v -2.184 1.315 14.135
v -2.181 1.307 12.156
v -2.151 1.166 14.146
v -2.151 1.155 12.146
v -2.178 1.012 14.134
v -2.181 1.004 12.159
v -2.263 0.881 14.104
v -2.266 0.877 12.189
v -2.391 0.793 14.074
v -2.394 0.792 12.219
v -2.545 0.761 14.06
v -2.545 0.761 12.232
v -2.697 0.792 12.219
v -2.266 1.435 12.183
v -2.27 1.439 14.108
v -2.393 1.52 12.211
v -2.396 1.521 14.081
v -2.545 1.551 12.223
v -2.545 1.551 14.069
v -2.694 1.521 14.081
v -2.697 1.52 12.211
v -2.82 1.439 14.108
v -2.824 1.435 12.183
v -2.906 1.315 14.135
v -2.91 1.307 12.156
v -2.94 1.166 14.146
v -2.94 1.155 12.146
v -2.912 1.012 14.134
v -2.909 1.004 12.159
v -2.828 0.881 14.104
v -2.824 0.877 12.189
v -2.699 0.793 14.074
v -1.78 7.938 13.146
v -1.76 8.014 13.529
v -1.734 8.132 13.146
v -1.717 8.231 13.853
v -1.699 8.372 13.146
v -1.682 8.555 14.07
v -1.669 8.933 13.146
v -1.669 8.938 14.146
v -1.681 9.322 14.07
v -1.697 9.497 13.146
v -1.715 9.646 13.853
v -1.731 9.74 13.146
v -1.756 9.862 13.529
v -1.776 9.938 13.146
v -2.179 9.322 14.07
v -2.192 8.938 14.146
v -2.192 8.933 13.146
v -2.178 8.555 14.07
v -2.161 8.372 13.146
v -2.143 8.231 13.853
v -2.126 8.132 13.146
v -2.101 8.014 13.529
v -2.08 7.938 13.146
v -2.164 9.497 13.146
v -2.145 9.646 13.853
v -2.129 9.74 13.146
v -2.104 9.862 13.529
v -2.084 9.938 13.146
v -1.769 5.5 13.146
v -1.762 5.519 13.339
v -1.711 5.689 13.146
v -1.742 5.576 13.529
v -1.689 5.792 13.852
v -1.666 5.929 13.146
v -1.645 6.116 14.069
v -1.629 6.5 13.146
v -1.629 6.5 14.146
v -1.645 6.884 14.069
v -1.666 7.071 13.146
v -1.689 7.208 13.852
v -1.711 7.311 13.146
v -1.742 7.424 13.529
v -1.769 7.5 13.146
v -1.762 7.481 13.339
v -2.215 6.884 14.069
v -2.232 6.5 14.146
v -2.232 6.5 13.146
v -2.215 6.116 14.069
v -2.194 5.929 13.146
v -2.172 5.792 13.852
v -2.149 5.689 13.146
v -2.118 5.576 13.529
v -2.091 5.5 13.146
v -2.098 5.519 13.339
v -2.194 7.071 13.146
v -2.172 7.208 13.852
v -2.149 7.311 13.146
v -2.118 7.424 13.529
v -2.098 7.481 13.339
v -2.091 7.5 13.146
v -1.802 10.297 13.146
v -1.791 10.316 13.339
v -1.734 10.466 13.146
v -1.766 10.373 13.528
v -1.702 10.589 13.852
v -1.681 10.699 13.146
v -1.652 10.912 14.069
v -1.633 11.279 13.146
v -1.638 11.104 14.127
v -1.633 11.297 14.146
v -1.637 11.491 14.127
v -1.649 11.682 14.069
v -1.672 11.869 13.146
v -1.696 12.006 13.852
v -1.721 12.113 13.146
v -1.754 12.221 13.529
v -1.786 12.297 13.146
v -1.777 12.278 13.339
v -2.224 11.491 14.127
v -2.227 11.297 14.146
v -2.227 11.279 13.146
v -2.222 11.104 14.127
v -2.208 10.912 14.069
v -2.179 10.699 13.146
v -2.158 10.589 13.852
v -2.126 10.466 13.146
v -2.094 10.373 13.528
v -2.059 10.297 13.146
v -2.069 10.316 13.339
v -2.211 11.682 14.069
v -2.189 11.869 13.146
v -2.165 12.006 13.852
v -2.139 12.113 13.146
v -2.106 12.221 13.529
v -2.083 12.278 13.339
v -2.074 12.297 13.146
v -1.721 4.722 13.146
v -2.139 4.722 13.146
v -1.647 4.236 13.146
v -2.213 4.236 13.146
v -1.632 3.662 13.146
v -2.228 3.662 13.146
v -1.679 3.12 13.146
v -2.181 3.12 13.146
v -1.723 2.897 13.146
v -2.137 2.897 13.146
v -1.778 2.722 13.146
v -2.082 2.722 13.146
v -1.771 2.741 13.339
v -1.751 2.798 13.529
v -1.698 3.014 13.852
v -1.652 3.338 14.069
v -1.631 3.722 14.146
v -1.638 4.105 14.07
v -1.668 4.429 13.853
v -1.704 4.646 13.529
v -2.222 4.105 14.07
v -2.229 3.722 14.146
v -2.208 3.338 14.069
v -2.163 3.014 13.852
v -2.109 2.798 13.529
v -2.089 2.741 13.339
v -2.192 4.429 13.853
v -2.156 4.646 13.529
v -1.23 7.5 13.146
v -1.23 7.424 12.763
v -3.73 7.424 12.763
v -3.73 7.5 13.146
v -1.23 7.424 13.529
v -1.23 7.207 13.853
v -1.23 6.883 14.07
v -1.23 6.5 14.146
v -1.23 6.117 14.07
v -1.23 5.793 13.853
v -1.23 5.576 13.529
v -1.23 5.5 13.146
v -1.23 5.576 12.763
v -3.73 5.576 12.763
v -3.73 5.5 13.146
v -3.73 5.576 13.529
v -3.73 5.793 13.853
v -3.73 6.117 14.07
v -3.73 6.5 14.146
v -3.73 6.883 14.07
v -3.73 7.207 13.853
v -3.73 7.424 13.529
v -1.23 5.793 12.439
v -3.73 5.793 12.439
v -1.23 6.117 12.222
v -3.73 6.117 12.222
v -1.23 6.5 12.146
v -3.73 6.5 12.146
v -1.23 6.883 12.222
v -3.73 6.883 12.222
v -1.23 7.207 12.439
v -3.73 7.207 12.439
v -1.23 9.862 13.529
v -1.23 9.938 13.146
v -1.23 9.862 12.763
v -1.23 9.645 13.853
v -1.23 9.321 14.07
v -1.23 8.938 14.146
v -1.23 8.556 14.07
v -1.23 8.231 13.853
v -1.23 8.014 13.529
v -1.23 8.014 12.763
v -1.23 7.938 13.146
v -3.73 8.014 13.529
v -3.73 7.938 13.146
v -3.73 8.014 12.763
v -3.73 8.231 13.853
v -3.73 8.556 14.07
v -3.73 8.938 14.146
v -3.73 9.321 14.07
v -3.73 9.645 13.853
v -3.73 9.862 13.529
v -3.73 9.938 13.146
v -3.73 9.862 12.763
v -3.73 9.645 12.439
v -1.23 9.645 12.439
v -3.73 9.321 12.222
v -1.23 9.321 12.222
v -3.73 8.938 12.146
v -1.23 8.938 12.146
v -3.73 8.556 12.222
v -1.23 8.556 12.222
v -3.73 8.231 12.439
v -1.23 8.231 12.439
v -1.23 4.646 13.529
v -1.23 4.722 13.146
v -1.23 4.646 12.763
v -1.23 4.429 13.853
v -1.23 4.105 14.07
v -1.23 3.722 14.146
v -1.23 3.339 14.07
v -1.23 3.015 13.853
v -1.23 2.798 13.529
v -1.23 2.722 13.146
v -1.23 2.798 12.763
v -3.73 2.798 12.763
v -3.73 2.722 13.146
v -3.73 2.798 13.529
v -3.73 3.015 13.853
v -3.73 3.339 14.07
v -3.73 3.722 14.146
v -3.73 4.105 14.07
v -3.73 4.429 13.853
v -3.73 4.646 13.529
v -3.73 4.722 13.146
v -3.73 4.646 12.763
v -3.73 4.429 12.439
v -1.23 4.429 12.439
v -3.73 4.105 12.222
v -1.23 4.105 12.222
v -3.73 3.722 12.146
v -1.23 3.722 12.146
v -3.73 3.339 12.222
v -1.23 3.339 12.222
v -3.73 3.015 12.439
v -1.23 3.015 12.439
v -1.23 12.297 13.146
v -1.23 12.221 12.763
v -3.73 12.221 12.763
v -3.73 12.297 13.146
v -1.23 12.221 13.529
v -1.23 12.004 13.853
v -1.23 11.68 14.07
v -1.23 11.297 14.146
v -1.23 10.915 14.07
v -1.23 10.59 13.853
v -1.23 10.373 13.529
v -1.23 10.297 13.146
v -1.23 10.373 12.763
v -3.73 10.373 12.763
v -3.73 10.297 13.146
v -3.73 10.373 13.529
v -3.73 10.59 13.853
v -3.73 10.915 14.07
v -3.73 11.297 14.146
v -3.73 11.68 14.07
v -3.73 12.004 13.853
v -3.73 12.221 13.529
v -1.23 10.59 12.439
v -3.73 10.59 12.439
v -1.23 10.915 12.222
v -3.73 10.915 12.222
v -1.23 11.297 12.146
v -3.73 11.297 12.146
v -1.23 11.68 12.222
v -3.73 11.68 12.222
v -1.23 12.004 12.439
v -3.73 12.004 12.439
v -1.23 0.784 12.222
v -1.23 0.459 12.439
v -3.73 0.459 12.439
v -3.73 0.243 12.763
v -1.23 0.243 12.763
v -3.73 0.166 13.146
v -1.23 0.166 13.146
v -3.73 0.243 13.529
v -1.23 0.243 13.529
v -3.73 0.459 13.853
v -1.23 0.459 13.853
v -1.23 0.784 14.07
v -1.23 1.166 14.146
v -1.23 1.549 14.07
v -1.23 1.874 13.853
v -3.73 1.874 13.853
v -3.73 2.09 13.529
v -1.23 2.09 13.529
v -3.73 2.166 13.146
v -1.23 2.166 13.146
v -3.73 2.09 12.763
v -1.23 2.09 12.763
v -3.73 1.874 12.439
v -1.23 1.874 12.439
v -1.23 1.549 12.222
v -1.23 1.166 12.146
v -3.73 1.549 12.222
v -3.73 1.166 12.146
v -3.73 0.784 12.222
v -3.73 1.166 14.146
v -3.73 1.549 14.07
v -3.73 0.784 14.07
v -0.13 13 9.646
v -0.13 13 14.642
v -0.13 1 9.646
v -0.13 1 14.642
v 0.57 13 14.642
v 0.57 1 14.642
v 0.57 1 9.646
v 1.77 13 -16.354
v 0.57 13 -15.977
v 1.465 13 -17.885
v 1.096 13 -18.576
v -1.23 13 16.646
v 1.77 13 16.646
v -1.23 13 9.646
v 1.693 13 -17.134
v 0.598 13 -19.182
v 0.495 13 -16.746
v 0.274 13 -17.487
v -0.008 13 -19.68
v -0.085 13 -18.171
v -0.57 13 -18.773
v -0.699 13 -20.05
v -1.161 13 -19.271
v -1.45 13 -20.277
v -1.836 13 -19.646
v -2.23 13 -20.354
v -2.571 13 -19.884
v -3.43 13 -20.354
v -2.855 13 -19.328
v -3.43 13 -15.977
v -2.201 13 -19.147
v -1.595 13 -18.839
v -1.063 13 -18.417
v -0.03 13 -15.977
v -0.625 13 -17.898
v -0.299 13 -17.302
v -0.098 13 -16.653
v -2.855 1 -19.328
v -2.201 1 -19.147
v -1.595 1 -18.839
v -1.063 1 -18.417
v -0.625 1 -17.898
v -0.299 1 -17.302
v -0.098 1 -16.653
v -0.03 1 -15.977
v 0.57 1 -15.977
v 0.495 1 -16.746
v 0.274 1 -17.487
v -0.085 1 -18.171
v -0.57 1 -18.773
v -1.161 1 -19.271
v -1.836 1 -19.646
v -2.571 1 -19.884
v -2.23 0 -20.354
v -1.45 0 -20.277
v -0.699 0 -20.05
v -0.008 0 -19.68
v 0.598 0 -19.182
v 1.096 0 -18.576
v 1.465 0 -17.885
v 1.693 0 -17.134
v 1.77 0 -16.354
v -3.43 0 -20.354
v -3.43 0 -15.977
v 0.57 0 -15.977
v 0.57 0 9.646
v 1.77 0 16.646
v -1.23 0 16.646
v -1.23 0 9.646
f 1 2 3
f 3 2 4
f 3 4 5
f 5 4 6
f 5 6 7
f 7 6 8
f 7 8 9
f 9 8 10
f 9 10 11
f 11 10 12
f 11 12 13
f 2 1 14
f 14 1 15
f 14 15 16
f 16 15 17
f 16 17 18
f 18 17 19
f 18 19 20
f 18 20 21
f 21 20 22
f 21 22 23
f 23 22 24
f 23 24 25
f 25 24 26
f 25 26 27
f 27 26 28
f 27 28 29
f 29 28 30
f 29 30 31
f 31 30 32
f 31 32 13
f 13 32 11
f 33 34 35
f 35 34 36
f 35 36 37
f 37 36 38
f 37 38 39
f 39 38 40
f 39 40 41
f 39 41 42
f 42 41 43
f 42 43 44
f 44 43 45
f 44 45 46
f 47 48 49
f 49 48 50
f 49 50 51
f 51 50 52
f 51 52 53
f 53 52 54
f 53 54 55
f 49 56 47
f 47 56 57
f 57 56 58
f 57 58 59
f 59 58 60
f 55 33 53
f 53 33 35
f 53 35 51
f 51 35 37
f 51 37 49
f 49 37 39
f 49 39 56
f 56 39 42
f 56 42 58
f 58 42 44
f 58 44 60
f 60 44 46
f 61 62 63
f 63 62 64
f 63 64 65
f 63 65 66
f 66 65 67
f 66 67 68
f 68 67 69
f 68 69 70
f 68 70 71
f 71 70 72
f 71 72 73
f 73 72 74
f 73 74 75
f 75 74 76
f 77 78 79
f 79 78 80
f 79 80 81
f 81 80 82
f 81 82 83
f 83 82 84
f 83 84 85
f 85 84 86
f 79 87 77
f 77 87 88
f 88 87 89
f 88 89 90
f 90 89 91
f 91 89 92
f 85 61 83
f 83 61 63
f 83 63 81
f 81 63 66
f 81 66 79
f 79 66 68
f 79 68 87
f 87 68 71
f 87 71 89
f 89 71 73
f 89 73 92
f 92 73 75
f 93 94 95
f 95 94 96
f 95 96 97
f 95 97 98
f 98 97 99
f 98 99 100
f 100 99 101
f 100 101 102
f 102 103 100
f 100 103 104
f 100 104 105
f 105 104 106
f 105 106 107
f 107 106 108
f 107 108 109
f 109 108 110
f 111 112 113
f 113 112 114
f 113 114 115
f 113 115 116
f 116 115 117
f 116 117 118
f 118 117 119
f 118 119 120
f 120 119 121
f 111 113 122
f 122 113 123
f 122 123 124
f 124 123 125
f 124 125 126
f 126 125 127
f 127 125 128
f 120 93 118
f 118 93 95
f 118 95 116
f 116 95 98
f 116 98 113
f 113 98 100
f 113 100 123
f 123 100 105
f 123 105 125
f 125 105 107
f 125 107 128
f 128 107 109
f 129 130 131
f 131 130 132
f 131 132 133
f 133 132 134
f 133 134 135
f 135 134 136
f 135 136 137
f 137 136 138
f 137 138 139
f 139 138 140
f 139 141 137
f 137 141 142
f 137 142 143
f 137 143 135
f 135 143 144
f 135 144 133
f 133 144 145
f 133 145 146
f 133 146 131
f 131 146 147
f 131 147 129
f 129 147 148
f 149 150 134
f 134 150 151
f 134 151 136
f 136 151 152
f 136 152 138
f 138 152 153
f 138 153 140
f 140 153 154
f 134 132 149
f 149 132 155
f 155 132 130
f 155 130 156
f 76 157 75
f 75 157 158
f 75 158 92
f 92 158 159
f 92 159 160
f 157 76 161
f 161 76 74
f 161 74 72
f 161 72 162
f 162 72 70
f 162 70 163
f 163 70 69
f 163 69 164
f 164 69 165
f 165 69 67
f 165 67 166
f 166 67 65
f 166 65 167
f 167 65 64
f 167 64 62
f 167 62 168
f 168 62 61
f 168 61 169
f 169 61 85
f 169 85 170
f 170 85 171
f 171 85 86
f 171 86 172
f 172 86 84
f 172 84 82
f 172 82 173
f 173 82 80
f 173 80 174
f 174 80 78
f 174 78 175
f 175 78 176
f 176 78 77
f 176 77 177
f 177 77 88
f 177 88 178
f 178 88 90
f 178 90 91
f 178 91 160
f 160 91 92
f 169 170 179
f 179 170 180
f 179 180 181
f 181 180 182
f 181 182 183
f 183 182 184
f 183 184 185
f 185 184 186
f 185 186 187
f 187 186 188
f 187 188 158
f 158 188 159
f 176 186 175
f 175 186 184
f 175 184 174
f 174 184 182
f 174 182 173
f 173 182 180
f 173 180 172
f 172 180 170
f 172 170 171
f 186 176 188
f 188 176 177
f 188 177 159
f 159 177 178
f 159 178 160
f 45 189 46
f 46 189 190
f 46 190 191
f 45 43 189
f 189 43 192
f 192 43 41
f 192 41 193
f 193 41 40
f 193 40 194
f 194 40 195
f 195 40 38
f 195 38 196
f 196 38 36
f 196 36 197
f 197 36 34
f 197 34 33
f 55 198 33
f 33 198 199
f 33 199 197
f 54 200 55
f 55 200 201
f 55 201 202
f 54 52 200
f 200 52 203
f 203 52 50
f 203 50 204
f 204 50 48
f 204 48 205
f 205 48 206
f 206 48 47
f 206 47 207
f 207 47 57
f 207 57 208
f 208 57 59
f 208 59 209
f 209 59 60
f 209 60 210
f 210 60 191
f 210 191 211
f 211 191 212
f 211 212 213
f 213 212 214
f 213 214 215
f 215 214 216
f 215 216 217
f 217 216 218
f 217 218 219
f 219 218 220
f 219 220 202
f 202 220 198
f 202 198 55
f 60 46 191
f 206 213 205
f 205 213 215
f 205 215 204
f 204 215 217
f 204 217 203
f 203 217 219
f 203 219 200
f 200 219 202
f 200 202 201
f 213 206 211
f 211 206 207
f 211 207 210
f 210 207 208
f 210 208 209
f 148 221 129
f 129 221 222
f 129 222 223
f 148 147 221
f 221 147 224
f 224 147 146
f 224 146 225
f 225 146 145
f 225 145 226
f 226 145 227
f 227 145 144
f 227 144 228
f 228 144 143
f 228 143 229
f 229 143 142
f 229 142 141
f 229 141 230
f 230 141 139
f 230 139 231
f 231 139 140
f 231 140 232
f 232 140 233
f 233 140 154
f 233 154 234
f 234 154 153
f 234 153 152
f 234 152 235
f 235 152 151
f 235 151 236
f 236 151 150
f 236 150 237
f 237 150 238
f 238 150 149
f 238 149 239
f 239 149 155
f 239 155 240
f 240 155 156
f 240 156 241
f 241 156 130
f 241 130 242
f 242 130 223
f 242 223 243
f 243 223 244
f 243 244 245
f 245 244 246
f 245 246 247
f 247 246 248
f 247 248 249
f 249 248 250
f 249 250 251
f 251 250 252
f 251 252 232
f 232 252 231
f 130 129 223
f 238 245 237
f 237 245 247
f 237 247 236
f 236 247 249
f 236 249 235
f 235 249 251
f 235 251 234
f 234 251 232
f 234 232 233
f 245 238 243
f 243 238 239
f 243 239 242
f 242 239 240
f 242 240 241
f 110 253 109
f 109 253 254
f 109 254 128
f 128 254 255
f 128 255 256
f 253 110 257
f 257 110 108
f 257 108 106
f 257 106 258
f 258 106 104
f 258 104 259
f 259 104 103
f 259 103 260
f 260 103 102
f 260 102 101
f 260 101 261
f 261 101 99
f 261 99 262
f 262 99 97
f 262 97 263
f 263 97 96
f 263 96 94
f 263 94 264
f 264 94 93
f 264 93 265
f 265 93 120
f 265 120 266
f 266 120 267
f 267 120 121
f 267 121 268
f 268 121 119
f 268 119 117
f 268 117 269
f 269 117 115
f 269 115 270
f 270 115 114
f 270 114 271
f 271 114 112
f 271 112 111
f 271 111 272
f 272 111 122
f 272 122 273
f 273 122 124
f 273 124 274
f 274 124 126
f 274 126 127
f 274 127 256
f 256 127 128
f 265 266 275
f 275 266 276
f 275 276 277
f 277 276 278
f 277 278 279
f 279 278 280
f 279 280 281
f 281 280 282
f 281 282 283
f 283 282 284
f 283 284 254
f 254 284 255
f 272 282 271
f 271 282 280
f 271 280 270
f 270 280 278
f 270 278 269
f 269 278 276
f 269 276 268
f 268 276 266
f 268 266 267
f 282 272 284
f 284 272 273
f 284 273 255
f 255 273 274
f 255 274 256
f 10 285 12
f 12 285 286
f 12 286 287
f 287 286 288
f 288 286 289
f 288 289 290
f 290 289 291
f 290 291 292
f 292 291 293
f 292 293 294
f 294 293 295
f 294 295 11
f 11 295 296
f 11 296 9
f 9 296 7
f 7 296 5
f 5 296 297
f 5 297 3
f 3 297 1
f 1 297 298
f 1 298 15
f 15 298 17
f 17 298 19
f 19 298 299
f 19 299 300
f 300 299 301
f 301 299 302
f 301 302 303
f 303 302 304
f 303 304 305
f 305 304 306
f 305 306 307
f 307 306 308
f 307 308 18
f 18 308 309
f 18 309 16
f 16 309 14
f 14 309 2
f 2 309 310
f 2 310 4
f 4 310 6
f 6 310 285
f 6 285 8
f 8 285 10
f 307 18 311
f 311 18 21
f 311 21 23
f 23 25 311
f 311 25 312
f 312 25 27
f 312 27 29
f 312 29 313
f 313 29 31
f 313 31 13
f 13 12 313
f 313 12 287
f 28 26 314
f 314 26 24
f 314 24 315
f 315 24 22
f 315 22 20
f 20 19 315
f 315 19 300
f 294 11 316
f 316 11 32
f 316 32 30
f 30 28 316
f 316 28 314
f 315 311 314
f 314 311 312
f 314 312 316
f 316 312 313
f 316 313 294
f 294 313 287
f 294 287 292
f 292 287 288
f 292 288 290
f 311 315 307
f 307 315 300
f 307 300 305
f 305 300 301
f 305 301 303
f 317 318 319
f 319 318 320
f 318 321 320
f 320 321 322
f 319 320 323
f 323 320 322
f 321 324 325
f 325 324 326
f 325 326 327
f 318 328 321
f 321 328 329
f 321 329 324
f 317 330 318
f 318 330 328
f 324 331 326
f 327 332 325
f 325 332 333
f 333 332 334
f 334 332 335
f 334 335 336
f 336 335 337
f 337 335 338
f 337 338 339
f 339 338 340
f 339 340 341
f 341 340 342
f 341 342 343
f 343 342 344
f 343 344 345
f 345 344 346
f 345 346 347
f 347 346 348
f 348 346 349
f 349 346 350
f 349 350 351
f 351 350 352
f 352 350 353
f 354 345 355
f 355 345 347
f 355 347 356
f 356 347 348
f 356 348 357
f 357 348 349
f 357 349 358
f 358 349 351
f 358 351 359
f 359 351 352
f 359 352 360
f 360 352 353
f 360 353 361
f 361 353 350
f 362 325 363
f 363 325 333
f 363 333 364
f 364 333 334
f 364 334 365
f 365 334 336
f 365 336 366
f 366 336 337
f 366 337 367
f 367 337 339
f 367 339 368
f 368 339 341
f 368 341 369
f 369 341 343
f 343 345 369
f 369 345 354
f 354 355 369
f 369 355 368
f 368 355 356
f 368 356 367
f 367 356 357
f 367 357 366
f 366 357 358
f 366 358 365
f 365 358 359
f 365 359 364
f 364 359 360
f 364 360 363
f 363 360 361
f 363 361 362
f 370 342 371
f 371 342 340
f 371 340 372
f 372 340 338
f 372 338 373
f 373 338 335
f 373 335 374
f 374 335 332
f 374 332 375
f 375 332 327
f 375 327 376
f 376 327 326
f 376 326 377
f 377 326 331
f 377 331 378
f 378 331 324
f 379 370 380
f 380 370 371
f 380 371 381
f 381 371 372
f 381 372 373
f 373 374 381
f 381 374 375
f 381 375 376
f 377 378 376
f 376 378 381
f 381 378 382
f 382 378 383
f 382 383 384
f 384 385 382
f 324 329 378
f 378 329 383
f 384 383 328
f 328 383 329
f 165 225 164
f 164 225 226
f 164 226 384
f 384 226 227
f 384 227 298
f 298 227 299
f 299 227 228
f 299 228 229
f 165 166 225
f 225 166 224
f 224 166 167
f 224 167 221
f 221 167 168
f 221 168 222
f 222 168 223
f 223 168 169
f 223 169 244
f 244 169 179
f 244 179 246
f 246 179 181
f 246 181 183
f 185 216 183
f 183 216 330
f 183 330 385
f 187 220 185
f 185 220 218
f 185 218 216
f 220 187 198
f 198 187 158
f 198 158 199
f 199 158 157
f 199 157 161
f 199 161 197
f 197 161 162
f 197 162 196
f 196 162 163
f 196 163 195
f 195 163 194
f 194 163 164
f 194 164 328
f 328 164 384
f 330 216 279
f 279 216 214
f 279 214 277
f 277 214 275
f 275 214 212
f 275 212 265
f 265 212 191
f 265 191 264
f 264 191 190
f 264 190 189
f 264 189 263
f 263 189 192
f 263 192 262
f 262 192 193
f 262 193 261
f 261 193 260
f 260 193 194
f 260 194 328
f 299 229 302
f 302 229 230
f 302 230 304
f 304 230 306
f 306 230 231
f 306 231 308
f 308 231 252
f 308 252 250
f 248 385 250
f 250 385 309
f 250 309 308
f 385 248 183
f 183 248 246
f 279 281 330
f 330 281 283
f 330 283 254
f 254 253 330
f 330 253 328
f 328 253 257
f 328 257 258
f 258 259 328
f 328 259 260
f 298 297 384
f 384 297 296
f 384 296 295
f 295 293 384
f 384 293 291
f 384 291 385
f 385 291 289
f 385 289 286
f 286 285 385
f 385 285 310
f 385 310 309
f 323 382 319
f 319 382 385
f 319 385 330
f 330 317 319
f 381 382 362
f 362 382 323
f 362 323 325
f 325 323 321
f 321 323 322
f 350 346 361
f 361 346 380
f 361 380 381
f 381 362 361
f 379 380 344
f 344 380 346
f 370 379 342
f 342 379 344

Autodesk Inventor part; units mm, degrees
ref_plane "YZ Plane" through (0, 0, 0) normal (1, 0, 0) x (0, 1, 0)
ref_plane "XZ Plane" through (0, 0, 0) normal (0, 1, 0) x (-1, 0, 0)
ref_plane "XY Plane" through (0, 0, 0) normal (0, 0, 1) x (1, 0, 0)
sketch "Skizze1" plane through (0, 0, 0) normal (0, 1, 0) x (-1, 0, 0)
  line L0 (1.2301, 16.646) -> (-1.7699, 16.646)
  line L1 (-1.7699, 16.646) -> (-1.7699, 9.646)
  line L2 (-1.7699, 9.646) -> (1.2301, 9.646)
  line L3 (1.2301, 9.646) -> (1.2301, 16.646)
  line L4 (-1.7699, 9.646) -> (-0.5699, 9.646)
  line L5 (-0.5699, 9.646) -> (-0.5699, -20.354)
  line L6 (-0.5699, -20.354) -> (-1.7699, -20.354)
  line L7 (-1.7699, -20.354) -> (-1.7699, 9.646)
  line L8 (-0.5699, -20.354) -> (3.4301, -20.354)
  line L9 (3.4301, -20.354) -> (3.4301, -15.9771)
  line L10 (3.4301, -15.9771) -> (-0.5699, -15.9771)
  line L11 (-0.5699, -15.9771) -> (-0.5699, -20.354)
  point P0 (0, 0)
  dimension "d0" = 3
  dimension "d1" = 7
  dimension "d2" = 1.2
  dimension "d3" = 30
  dimension "d4" = 4
extrude "Extrusion1" add sketch "Skizze1" along normal blind 13
fillet "Rundung1" radius 4 1 edges at (1.7699, 6.5, -20.354)
sketch "Skizze2" plane through (0, 13, 0) normal (0, 1, 0) x (1, 0, 0)
  line L0 (0.5699, -9.646) -> (-1.2301, -9.646) projected
  line L1 (0.5699, -9.646) -> (-0.1301, -9.646)
  line L2 (-0.1301, -9.646) -> (-0.1301, -14.642)
  line L3 (-0.1301, -14.642) -> (0.5699, -14.642)
  line L4 (0.5699, -14.642) -> (0.5699, -9.646)
  point P0 (0, 0)
  point P1 (-0.3301, -9.646)
  point P2 (-0.1301, -9.646)
  dimension "d8" = 5
  dimension "d9" = 0.7
sketch "Skizze3" plane through (0, 13, 0) normal (0, 1, 0) x (1, 0, 0)
  line L0 (-3.4301, 20.354) -> (-3.4301, 15.9771) projected
  line L1 (-3.4301, 15.9771) -> (0.5699, 15.9771) projected
  arc A0 (0.5699, 15.9771) -> (-2.5715, 19.8839) centre (-3.4301, 15.9771) ccw
  line L2 (0.5699, 15.9771) -> (0.5699, -9.646) projected
  line L3 (0.5699, 15.9771) -> (-0.0301, 15.9771)
  arc A1 (-0.0301, 15.9771) -> (-2.8554, 19.3282) centre (-3.4301, 15.9771) ccw
  line L4 (-2.8554, 19.3282) -> (-2.5715, 19.8839)
  point P0 (0, 0)
  dimension "d10" = 0.6
extrude "Extrusion2" cut sketch "Skizze3" against normal blind 12
extrude "Extrusion3" cut sketch "Skizze2" against normal blind 12
sketch "Skizze4" plane through (-1.2301, 0, 9.646) normal (-1, 0, 0) x (0, 0, 1)
  line L0 (0, 0) -> (7, 0) projected
  line L1 (7, 0) -> (3.5, 0)
  line L2 (4.996, 13) -> (0, 13) projected
  line L3 (3.5, 13) -> (3.5, 0)
  line L4 (3.5, 6.5) -> (7, 6.5)
  line L5 (7, 0) -> (7, 13) projected
  circle A0 centre (3.5, 6.5) radius 1
  circle A1 centre (3.5, 1.1664) radius 1
  circle A2 centre (3.5, 3.7221) radius 1
  circle A3 centre (3.5, 8.9382) radius 1
  circle A4 centre (3.5, 11.2973) radius 1
  point P0 (-9.646, 0)
  dimension "d15" = 2
  dimension "d16" = 2
  dimension "d17" = 2
  dimension "d18" = 2
  dimension "d19" = 2
extrude "Extrusion4" add sketch "Skizze4" along normal blind 2.5 contours A4 L3 | L3 A4 | A3 L3 | L3 A3 | A1 L3 | L3 A1 | A0 L3 L4 | L4 L3 A0 | A2 L3 | L3 A2 | L3 A0
ref_plane "Arbeitsebene1" through (-1.2301, 11.2973, 14.146) normal (0, 0, 1) x (1, 0, 0)
sketch "Skizze5" plane through (-1.2301, 11.2973, 14.146) normal (0, 0, 1) x (1, 0, 0)
  line L0 (-2.2, -11.2973) -> (-2.2, 1.7027) projected
  ellipse E0 centre (-0.7, -4.7973) end of major axis (-0.7, -3.6152) minor radius 0.3015
  ellipse E1 centre (-0.7, -2.3523) end of major axis (-0.7, -1.125) minor radius 0.2616
  line L1 (0, -1.3591) -> (-2.5, -1.3591) projected
  ellipse E2 centre (-0.7, 0.0155) end of major axis (-0.7, 1.1416) minor radius 0.2973
  circle A0 centre (-1.25, -10.1312) radius 0.3762
  ellipse E3 centre (-0.7, -7.4834) end of major axis (-0.7, -8.7492) minor radius 0.3
  line L2 (0, -8.5752) -> (-2.5, -8.5752) projected
  point P0 (1.2301, -11.2973)
  point P1 (-0.8518, -8.5752)
  point P2 (-0.5482, -8.5752)
extrude "Extrusion5" cut sketch "Skizze5" against normal blind 1 contours E1 L1 | L1 E1 | E3 L2 | E0 | E2 picked at (-0.7898, -7.5169)
sketch "Skizze6" plane through (-1.2301, 11.2973, 14.146) normal (0, 0, 1) x (1, 0, 0)
  circle A0 centre (-1.315, -10.1413) radius 0.3946
  point P0 (1.2301, -11.2973)
extrude "Extrusion6" cut sketch "Skizze6" against normal blind 2.5
properties part number "hook_applicator_slide in"
